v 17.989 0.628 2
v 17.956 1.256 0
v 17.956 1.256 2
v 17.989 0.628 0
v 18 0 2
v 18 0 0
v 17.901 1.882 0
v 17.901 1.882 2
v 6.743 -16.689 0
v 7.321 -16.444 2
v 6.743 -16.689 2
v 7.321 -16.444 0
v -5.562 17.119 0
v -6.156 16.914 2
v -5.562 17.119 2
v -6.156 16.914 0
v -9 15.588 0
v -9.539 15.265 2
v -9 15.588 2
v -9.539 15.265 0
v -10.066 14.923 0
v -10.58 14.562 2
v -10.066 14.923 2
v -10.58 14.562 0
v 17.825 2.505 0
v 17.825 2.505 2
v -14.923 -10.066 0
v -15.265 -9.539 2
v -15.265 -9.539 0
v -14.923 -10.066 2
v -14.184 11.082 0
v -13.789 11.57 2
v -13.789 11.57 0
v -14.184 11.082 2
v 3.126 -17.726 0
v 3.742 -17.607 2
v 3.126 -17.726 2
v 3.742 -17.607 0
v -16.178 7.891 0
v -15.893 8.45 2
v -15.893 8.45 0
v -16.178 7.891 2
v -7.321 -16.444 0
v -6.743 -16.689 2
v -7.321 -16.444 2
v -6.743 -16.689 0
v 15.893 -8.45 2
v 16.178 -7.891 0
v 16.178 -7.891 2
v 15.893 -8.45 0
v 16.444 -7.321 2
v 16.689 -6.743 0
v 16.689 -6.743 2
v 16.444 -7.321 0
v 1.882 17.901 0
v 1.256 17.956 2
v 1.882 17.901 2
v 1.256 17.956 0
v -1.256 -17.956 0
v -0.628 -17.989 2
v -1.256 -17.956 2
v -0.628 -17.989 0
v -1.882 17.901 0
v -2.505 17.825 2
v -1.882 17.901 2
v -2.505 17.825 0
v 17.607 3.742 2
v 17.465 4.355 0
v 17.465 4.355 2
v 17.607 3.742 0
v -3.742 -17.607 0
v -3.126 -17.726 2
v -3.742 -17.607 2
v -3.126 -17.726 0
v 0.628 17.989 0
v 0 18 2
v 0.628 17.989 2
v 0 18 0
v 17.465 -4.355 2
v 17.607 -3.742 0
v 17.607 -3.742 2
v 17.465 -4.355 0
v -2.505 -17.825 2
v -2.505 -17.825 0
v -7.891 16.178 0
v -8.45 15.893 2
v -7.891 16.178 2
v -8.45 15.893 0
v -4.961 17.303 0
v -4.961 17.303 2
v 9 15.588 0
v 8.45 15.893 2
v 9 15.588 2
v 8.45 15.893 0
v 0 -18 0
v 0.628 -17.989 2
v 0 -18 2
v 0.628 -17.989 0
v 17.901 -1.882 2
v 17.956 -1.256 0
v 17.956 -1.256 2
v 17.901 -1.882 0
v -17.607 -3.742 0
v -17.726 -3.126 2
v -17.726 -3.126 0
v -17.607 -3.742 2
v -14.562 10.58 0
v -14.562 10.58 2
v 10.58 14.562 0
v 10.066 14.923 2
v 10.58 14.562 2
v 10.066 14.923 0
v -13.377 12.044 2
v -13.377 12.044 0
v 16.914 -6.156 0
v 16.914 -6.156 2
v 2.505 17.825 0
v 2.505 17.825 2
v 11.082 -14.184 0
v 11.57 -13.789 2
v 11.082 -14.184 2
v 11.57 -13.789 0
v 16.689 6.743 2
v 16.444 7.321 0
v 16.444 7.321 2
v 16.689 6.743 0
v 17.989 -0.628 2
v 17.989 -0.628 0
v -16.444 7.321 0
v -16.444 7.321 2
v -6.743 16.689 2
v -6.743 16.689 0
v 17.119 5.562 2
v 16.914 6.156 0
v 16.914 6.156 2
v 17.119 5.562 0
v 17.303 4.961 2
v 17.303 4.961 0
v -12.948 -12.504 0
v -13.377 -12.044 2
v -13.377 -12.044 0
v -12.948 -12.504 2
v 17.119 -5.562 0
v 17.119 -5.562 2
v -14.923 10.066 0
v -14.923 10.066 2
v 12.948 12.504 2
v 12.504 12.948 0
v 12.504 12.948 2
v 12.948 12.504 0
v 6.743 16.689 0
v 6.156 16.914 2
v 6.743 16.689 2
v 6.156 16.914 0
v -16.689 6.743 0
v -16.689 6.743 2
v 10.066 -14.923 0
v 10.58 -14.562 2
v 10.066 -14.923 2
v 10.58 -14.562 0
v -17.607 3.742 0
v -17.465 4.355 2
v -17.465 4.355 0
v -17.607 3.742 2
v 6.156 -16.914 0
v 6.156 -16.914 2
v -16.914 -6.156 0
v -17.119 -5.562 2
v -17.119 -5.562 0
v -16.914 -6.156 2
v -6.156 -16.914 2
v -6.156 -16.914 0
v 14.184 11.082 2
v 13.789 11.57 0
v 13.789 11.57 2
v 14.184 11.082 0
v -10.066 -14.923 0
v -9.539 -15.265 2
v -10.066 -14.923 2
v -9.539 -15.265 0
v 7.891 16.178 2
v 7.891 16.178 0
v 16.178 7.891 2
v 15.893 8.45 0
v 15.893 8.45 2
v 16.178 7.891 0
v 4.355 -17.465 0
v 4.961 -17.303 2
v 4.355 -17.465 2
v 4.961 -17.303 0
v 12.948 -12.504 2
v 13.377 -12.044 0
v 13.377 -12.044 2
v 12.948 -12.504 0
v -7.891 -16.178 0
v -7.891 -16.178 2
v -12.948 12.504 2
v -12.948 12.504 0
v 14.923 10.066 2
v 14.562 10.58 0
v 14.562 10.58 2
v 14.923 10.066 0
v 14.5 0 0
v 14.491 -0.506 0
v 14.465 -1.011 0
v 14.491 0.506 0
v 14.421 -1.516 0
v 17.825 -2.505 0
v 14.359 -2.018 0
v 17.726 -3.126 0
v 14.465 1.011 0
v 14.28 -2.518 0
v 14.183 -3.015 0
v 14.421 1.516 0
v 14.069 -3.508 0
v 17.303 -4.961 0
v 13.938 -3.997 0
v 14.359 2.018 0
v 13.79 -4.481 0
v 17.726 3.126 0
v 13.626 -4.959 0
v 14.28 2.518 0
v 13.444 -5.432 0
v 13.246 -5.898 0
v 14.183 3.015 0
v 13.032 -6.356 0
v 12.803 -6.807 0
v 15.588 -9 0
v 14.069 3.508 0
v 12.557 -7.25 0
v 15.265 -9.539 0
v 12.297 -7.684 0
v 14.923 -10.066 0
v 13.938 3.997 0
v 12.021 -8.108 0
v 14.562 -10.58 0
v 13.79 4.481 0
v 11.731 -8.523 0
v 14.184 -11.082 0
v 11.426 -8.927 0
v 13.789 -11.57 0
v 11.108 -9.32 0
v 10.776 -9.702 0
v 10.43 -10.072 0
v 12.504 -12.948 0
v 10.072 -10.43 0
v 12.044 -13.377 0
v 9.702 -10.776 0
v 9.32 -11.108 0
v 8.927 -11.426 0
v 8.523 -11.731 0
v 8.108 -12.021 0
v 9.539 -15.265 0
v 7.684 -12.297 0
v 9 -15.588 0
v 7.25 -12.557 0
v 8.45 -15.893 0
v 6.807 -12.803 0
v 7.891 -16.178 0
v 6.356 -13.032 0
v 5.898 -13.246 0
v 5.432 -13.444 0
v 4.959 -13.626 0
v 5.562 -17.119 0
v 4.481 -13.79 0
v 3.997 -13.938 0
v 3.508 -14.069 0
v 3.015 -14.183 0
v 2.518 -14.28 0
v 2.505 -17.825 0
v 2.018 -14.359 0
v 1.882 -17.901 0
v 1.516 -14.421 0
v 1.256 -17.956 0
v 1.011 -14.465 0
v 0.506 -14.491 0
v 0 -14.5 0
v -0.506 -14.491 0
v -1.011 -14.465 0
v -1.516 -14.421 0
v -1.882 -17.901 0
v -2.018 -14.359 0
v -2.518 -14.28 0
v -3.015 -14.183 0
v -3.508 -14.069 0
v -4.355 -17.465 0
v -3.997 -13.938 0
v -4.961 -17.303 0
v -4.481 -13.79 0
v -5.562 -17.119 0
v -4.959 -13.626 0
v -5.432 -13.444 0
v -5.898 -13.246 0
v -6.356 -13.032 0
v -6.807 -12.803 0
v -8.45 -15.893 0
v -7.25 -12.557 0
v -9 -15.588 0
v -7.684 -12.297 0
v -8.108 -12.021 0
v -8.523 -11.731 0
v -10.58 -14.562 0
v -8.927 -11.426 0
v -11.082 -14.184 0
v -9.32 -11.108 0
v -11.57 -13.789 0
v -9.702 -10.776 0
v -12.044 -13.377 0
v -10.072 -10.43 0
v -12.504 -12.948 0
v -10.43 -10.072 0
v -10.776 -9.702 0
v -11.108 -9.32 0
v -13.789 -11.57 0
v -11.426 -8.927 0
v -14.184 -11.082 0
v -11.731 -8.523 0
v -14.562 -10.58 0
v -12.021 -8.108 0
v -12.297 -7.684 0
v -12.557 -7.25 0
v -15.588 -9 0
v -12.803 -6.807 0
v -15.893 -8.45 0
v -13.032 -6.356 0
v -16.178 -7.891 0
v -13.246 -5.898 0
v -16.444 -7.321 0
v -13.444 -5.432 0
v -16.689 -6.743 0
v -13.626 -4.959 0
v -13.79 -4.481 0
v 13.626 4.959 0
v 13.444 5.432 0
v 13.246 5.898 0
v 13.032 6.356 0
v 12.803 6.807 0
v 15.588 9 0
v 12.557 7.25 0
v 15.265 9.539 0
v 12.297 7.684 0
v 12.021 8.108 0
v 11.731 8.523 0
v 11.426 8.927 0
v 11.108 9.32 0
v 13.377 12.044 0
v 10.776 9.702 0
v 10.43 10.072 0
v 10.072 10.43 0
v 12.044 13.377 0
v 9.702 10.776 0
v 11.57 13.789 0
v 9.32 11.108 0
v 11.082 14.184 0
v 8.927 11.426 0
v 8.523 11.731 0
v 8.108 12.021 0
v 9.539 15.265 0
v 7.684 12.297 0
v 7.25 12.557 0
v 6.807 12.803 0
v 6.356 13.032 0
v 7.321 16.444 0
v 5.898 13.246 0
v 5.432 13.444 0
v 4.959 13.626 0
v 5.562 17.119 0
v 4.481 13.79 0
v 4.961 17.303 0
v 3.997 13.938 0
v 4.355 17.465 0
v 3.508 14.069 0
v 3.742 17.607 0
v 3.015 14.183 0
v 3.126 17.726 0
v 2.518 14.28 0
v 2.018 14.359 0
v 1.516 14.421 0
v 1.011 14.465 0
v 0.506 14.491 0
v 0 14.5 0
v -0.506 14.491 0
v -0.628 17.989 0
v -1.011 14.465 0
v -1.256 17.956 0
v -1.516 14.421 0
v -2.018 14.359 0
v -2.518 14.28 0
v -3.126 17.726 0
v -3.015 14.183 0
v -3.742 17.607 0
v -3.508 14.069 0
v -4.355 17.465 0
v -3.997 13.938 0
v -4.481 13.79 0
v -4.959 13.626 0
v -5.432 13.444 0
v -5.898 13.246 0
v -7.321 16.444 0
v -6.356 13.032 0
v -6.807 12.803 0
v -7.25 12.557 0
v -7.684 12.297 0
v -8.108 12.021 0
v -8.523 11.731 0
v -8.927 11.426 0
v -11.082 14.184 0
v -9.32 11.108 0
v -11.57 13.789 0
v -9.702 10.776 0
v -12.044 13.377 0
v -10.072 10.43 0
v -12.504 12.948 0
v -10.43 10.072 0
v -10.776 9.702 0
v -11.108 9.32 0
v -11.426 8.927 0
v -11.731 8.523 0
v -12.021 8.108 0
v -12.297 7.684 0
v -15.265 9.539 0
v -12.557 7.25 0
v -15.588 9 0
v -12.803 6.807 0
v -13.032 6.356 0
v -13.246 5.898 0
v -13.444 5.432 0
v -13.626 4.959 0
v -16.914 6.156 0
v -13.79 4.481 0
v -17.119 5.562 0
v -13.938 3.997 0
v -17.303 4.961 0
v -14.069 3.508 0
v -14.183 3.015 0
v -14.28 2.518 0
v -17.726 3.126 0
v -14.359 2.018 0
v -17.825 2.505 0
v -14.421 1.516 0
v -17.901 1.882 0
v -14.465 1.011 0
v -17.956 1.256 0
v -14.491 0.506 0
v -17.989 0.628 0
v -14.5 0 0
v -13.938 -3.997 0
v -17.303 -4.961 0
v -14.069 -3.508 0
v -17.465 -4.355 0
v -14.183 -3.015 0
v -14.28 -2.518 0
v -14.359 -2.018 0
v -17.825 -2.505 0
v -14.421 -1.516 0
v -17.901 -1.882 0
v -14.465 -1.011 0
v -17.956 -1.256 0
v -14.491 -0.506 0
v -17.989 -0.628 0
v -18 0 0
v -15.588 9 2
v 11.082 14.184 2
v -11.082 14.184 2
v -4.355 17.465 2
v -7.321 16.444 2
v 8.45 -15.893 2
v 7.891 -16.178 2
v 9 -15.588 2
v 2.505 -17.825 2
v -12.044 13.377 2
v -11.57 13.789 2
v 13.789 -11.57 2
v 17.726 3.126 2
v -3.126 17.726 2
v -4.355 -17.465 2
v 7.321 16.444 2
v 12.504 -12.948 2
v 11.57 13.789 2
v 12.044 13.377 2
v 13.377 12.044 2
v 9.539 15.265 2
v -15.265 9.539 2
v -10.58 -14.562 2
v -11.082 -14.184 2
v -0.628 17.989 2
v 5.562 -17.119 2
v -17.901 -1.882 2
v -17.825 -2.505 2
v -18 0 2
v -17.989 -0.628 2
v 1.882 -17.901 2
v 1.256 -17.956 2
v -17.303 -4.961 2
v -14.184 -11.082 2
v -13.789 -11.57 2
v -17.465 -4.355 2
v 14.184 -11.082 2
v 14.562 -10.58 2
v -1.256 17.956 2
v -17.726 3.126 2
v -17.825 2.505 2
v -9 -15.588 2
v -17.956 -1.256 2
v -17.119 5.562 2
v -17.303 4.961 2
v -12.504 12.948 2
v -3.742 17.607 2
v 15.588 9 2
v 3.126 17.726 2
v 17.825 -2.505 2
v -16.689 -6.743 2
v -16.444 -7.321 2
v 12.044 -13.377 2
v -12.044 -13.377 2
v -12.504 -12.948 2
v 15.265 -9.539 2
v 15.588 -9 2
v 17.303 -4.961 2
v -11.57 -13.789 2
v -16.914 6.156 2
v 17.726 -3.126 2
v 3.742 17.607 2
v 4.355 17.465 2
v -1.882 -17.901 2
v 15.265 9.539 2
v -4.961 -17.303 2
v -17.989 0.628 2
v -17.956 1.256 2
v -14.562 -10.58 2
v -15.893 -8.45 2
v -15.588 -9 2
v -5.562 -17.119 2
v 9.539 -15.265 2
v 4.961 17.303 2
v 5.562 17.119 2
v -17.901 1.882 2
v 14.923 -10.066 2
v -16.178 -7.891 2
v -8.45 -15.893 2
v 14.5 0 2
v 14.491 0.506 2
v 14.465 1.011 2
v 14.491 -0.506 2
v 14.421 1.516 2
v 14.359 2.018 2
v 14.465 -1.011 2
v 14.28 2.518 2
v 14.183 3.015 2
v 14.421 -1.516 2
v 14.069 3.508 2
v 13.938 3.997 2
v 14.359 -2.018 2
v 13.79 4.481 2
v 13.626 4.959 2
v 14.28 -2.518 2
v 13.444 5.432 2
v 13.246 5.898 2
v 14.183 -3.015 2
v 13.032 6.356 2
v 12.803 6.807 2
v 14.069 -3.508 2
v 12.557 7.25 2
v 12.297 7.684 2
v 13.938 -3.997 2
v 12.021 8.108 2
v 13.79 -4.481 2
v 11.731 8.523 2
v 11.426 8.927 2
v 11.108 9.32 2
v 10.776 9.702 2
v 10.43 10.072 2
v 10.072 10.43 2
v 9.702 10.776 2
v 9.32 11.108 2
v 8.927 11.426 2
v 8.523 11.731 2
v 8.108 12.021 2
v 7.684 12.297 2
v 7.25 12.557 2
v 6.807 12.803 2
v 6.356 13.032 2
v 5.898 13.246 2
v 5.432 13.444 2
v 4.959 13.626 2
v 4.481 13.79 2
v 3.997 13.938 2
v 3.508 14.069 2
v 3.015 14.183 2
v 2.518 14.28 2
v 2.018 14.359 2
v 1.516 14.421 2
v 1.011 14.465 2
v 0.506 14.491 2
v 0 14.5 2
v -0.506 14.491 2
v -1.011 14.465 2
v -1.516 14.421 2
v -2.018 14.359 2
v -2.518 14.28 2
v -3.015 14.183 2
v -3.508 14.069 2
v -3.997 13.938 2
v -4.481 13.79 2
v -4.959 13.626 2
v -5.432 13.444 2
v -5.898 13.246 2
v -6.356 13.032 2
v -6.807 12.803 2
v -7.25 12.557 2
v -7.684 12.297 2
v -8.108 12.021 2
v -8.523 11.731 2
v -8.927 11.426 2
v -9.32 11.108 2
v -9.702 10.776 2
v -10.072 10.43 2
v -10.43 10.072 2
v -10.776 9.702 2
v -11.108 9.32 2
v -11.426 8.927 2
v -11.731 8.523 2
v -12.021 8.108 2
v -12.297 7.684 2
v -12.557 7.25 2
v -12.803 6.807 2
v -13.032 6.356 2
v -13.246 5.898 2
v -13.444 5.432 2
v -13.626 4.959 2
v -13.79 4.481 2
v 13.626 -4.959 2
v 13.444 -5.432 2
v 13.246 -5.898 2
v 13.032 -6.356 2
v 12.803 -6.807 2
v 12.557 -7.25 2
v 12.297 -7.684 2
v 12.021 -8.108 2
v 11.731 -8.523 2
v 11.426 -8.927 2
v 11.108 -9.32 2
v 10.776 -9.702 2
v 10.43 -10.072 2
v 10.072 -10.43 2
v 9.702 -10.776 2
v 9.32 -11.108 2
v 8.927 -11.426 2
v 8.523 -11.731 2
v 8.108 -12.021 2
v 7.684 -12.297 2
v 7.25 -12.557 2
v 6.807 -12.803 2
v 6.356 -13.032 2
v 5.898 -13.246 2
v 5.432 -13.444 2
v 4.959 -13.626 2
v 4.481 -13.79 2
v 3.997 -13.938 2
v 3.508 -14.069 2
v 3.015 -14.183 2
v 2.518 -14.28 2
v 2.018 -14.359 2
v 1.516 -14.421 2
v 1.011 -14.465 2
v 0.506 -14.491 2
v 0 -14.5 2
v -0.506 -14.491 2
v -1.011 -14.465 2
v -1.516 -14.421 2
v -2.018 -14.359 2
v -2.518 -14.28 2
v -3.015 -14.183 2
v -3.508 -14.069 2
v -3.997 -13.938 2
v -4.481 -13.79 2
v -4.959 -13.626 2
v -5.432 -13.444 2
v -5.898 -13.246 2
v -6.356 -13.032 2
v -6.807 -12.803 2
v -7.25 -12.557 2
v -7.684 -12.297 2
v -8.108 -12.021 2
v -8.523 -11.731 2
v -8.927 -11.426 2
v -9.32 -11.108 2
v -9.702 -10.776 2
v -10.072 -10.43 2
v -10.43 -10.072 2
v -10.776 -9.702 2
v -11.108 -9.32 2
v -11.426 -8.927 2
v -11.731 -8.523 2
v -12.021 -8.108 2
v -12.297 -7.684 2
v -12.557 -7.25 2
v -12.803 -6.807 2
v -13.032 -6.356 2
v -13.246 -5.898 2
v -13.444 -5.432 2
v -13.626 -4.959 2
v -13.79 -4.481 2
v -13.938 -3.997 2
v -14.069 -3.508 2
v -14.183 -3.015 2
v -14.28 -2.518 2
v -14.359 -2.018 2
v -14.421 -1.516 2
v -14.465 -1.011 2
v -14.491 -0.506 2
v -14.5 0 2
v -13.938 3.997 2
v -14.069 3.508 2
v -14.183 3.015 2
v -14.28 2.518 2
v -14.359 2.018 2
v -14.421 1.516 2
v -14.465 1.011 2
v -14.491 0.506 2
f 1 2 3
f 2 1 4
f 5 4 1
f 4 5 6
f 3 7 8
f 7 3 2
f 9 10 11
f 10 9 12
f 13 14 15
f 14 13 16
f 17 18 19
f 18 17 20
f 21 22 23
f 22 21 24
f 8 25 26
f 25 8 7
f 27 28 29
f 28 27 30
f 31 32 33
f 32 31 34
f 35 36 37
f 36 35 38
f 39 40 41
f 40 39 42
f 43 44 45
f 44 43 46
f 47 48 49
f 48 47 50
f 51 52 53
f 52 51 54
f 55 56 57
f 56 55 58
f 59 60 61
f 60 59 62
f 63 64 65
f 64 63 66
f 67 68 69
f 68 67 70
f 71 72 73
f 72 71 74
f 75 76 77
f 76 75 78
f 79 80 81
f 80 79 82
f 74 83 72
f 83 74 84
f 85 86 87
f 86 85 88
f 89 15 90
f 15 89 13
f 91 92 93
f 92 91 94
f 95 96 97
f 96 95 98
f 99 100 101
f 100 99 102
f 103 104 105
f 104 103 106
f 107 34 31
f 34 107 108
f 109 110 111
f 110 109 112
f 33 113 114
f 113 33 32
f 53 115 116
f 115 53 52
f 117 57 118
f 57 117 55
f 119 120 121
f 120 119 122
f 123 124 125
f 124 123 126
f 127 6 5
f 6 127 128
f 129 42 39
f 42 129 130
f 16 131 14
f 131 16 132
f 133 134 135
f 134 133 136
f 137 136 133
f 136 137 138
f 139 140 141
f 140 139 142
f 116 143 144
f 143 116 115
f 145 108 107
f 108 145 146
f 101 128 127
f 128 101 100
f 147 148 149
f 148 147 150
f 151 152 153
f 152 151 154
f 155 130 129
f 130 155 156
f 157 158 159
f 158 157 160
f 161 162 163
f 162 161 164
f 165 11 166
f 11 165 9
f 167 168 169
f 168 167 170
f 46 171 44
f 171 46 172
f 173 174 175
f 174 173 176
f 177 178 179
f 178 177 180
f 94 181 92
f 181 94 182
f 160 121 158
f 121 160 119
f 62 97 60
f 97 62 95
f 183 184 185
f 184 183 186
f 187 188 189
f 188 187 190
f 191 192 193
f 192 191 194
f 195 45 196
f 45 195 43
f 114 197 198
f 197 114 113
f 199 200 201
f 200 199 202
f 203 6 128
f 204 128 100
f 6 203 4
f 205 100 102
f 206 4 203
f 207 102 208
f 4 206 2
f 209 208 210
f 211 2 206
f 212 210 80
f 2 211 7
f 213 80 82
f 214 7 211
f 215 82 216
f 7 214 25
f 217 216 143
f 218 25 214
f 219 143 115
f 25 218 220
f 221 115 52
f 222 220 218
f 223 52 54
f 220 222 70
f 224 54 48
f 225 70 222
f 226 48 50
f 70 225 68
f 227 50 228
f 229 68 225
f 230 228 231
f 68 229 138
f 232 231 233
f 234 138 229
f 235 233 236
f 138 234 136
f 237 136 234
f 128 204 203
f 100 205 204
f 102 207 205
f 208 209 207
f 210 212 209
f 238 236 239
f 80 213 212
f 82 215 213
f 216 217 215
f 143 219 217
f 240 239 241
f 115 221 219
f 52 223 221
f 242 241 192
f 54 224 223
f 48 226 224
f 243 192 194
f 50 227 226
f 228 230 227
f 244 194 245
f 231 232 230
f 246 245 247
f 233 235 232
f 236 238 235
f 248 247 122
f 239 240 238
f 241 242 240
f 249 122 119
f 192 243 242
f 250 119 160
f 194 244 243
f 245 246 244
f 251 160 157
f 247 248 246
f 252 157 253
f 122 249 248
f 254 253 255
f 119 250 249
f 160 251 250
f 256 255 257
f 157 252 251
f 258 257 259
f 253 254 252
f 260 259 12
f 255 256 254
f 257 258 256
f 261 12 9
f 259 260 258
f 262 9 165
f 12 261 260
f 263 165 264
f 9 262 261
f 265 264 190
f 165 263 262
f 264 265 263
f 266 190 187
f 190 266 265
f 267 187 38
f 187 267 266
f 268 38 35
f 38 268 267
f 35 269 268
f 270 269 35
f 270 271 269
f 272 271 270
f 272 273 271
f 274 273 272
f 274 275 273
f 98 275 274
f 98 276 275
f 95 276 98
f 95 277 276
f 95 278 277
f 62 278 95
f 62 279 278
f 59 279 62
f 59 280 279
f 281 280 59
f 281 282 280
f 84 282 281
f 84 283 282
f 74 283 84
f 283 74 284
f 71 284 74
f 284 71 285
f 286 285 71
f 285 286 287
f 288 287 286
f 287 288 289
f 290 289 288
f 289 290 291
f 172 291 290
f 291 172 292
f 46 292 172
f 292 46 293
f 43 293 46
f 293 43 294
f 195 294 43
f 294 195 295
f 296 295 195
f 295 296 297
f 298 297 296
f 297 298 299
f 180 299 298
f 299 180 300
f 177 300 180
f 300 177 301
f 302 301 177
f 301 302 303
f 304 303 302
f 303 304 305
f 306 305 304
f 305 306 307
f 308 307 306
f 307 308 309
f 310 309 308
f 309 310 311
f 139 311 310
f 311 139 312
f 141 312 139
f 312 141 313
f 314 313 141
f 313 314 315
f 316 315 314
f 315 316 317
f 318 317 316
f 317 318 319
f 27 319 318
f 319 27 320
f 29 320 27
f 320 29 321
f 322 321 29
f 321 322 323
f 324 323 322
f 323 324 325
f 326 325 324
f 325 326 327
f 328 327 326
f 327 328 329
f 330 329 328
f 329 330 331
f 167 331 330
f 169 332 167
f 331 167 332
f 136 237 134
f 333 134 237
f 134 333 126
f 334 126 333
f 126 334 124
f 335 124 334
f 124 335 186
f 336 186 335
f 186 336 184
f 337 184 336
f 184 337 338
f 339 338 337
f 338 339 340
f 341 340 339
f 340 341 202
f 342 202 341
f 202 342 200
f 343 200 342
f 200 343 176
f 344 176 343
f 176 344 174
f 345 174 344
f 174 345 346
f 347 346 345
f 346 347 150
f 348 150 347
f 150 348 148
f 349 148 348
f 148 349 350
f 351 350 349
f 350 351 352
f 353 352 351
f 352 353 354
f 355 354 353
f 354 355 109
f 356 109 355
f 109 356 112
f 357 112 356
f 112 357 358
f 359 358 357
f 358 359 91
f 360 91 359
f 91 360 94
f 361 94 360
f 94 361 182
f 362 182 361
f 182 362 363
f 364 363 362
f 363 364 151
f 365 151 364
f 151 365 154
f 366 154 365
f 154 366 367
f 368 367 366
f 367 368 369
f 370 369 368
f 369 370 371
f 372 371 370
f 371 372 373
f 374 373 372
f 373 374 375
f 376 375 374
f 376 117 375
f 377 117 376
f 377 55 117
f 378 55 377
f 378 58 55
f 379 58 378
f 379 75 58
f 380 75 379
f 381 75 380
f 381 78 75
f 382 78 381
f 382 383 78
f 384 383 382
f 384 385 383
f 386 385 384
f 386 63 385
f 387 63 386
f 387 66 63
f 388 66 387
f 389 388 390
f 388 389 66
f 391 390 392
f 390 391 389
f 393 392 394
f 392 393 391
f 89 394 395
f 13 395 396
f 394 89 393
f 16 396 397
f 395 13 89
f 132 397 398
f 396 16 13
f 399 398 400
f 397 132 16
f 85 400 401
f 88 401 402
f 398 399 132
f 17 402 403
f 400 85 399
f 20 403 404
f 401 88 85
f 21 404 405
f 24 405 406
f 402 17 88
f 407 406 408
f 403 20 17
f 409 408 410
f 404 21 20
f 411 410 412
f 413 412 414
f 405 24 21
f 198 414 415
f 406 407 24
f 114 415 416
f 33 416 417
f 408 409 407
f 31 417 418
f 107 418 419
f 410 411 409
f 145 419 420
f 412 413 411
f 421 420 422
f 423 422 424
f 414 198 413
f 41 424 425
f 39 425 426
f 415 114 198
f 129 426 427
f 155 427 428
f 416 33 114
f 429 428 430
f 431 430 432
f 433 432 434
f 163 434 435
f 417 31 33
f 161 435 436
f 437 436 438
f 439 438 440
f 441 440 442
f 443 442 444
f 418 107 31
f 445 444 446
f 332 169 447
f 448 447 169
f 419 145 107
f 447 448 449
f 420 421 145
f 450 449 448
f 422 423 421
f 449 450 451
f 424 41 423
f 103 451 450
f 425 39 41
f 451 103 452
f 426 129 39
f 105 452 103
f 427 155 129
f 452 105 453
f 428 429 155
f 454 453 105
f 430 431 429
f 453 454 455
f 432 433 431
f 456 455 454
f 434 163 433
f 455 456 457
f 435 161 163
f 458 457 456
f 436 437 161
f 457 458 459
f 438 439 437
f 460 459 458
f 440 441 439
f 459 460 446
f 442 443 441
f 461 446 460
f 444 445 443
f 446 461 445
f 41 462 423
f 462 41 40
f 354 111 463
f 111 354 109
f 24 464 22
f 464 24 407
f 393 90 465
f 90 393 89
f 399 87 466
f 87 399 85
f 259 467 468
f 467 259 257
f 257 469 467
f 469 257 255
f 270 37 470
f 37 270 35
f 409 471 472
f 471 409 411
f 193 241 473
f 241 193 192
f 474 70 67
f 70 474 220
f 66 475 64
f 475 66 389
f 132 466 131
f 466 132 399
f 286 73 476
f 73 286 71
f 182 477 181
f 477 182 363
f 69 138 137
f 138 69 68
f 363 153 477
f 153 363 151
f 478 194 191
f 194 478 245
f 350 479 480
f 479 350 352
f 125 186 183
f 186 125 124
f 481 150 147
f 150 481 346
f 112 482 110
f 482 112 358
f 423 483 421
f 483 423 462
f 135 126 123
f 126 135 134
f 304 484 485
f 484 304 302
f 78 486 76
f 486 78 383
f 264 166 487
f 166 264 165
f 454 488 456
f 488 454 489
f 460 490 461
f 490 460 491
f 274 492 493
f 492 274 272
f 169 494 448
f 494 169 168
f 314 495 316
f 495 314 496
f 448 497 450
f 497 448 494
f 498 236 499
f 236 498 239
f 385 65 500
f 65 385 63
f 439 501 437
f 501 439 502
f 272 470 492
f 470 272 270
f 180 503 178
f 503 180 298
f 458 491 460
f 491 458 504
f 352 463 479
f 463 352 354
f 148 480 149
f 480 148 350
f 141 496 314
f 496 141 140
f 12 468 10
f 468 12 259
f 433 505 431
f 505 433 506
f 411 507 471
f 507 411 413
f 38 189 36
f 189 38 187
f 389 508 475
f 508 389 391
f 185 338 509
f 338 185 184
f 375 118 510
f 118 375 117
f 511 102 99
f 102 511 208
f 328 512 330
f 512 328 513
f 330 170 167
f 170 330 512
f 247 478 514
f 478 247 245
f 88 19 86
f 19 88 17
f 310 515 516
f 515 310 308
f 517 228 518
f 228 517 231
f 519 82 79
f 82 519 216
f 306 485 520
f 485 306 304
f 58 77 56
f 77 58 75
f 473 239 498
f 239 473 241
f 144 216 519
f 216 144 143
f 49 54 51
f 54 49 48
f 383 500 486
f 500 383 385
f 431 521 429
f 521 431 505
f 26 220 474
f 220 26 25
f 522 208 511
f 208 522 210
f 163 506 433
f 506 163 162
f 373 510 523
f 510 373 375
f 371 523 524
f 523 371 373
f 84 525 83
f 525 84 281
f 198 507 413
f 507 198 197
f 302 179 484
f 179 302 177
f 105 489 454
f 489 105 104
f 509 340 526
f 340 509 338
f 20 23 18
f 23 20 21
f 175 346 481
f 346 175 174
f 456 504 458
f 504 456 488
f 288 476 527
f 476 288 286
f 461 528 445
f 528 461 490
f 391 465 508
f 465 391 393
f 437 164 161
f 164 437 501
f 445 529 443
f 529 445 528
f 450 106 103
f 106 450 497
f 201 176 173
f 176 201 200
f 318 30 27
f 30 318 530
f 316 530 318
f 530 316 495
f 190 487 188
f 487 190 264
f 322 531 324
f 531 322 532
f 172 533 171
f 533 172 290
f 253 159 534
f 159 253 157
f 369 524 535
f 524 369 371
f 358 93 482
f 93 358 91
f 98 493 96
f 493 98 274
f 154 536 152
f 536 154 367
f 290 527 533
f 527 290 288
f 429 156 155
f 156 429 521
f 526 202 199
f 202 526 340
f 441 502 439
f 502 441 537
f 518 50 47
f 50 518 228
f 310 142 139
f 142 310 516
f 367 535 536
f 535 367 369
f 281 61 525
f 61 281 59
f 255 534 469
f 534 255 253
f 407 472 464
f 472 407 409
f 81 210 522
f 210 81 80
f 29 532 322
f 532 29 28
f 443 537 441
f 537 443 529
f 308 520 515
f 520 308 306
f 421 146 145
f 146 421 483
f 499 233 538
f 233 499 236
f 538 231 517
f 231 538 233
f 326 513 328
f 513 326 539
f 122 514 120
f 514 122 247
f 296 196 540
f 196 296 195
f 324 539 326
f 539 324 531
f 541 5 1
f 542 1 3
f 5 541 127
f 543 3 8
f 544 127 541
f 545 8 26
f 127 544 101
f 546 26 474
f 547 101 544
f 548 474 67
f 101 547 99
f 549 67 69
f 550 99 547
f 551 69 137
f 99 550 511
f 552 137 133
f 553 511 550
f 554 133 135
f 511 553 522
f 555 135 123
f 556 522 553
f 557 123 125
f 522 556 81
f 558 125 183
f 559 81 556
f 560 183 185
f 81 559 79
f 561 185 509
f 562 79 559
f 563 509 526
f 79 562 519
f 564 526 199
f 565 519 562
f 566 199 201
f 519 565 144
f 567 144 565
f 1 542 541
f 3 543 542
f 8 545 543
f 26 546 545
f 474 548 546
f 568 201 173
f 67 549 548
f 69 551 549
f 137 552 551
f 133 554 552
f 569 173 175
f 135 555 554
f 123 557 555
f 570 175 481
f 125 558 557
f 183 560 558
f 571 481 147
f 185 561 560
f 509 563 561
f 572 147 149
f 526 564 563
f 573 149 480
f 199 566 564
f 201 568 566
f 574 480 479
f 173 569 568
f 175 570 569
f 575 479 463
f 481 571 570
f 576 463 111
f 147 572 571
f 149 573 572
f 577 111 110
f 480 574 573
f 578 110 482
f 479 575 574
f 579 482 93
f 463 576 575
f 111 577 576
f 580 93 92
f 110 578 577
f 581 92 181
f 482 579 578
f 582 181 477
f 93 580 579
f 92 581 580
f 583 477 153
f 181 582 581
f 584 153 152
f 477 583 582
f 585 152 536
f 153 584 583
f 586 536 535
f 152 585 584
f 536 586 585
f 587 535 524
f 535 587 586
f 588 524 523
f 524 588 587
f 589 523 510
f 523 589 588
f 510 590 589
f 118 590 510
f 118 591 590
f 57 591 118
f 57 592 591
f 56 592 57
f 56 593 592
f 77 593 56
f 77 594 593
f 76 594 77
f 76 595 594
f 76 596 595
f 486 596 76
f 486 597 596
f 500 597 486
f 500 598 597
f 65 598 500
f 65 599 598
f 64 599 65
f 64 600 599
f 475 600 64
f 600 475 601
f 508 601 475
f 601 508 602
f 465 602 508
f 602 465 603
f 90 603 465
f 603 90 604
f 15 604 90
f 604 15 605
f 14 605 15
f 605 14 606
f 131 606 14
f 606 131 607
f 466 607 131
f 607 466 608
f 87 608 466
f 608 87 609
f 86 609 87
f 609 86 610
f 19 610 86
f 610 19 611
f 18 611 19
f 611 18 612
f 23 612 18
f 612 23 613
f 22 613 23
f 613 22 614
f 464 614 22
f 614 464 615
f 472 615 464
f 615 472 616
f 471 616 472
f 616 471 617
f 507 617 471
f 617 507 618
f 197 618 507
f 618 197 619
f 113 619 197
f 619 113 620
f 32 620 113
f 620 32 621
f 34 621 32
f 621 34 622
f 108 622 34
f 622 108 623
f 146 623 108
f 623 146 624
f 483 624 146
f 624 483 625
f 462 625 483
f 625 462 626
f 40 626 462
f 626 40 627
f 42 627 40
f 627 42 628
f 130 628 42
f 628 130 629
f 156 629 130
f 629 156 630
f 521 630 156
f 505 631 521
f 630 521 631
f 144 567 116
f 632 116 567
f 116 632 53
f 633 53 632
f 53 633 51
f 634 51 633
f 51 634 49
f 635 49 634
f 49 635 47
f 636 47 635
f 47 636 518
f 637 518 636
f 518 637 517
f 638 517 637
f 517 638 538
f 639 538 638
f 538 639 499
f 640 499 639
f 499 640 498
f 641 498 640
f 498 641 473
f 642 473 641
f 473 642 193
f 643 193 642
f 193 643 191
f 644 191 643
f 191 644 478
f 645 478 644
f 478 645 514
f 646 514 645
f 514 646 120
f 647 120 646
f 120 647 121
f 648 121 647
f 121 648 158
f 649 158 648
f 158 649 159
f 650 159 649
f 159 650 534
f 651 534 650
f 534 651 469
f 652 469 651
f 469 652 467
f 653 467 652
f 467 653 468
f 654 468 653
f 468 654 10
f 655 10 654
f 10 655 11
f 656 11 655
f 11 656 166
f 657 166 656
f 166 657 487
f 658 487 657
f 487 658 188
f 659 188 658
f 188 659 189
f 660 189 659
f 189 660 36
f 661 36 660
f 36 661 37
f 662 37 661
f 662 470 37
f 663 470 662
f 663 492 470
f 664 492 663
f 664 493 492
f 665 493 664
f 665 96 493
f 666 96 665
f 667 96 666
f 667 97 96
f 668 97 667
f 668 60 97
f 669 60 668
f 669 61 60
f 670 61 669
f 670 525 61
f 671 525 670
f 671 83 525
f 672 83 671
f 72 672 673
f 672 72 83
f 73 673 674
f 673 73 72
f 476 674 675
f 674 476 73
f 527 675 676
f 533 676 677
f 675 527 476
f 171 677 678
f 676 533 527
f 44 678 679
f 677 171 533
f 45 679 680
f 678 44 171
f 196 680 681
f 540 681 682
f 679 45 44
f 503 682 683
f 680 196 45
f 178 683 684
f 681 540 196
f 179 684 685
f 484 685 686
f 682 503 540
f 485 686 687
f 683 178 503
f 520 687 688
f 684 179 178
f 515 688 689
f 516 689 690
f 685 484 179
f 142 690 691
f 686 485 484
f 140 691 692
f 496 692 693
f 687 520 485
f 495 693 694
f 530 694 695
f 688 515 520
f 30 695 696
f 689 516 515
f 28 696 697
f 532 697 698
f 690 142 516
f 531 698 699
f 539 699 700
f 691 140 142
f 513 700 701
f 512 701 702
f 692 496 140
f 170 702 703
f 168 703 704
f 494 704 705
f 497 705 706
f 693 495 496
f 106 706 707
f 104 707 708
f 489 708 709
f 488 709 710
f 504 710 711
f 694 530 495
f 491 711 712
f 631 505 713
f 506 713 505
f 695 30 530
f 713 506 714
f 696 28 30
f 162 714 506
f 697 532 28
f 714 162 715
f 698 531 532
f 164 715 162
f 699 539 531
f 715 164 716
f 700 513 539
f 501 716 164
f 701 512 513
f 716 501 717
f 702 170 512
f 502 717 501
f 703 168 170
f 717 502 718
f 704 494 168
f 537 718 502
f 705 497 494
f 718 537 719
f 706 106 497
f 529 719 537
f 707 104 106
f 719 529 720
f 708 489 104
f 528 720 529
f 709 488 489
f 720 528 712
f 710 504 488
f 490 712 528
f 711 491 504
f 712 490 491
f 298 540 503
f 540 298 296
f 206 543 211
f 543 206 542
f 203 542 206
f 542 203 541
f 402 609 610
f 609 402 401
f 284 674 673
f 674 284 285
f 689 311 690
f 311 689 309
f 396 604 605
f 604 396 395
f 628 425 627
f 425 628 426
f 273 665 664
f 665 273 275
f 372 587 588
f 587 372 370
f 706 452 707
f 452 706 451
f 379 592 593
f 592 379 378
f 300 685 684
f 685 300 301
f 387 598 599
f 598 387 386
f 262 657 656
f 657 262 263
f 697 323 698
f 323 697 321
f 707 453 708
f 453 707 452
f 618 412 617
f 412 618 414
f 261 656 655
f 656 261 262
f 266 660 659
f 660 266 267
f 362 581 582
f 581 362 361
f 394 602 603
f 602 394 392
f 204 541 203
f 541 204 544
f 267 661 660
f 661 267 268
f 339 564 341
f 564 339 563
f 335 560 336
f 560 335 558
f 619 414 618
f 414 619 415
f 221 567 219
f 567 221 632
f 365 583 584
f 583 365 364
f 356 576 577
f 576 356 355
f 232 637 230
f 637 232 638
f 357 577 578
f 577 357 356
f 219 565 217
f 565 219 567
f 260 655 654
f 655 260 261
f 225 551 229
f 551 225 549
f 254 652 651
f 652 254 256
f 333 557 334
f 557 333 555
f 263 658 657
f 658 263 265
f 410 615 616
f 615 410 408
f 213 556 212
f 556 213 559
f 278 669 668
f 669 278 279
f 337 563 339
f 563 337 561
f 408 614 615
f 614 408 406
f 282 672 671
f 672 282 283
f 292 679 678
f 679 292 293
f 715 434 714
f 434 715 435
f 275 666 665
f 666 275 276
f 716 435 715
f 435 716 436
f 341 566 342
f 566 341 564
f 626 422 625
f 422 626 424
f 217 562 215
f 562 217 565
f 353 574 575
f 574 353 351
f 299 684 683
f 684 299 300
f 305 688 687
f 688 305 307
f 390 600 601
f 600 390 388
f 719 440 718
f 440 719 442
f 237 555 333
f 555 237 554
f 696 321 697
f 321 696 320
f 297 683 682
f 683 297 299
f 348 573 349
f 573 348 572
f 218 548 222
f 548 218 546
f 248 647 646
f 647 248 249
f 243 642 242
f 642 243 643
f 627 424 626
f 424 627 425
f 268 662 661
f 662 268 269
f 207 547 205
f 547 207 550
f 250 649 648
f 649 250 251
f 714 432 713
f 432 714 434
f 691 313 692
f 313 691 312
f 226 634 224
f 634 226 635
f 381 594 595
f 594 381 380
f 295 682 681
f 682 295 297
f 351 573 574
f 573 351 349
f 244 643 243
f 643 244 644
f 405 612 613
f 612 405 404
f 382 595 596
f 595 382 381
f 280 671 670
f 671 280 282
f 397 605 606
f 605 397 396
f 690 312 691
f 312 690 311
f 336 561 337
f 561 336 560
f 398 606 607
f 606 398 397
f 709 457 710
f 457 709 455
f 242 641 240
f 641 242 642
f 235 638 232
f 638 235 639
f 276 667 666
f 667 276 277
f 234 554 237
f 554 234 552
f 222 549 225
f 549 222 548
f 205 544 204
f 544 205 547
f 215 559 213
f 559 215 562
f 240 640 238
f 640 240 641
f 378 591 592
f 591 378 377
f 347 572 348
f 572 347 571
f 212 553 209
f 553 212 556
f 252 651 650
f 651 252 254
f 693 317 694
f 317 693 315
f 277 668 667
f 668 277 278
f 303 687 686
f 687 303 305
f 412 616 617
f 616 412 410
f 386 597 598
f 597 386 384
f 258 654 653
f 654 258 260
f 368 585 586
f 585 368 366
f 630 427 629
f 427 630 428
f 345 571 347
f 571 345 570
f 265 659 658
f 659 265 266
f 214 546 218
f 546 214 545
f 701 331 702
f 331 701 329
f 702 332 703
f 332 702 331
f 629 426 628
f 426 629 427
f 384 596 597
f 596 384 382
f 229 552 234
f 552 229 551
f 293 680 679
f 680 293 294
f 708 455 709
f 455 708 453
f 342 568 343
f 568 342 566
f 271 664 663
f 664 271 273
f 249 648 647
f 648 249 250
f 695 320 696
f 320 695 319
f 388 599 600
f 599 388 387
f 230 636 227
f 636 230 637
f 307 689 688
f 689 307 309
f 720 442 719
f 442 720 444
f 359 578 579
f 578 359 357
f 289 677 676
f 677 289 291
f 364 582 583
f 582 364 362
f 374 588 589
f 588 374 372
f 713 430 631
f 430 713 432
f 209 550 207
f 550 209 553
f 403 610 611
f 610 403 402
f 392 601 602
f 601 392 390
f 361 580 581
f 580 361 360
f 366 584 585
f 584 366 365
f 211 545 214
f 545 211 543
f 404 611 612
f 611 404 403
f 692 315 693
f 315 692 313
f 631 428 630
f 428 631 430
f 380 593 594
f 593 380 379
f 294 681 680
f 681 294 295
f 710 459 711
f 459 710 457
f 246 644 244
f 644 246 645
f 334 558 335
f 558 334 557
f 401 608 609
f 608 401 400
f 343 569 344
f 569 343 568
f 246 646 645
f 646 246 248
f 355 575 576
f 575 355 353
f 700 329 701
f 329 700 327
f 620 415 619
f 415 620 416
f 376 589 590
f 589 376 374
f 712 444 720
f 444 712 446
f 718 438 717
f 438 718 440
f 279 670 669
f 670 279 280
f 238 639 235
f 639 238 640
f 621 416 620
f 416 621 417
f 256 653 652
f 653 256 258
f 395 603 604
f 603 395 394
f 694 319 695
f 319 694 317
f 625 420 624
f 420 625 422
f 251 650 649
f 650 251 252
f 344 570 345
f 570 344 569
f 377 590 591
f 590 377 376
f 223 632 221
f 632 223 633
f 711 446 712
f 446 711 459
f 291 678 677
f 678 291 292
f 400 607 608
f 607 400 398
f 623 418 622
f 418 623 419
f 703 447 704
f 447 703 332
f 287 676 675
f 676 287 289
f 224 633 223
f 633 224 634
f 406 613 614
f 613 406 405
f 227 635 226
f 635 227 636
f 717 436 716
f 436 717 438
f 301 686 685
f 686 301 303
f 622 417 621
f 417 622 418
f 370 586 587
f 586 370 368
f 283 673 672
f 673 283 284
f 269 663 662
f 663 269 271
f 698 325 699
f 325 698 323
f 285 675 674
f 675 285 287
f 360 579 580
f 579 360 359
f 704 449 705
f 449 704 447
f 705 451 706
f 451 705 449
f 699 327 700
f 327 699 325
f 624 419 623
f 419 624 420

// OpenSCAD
// file: params.scad
// ─────────────────────────────────────────────────────────────
//  Automated Snail Terrarium — shared parameters
//  Change a number, run ../.venv/bin/python verify.py, get STLs.
//
//  CONFIRMED = from a datasheet / vendor spec
//  ASSUMED   = safe default, verify before ordering prints
//  MEASURE   = must be measured first
// ─────────────────────────────────────────────────────────────

// ── Mist maker module ────────────────────────────────────────
// CONFIRMED (eshop.eca.ir, 550 ml/h unit):
//   24 V DC · >=550 ml/h · effective water level 20-75 mm
//   head dia 45 mm · module height 45 mm · 5-45 C
//   cable 1400 +/-20 mm, 3.8 mm OD · DC female 5.5 x 2.1 mm
mm_module_od      = 45;
mm_module_h       = 45;
mm_cable_od       = 3.8;
water_min         = 20;
water_max         = 75;

// ── Water column ─────────────────────────────────────────────
// A Mariotte (inverted-bottle) reservoir holds the level CONSTANT,
// so it is parked near the BOTTOM of the band rather than filled to
// the top. That is what makes this build cheap: the water column
// drops from 118 mm to 68.5 mm, and the chamber shrinks with it.
mm_recess_d       = 1.5;
module_top        = mm_module_h - mm_recess_d;
water_hold        = 25;    // held this far above the module top
water_level       = module_top + water_hold;
fog_headspace     = 55;

// ── Chamber (cylindrical: least wall for a given volume) ──────
ch_id             = 74;    // must clear the 45 mm module + fog path
ch_wall           = 2.5;
ch_floor          = 3.0;
ch_od             = ch_id + 2*ch_wall;
ch_inner_h        = water_level + fog_headspace;

// ── Fog outlet ───────────────────────────────────────────────
fog_port_d        = 28;
fog_port_z        = water_level + 26;
fog_boss_len      = 10;
fog_boss_wall     = 2.5;

// ── Mariotte standpipe ───────────────────────────────────────
// Its BOTTOM OPENING sets the water level. Water leaves the bottle
// until it seals this opening; air can then no longer enter, so
// flow stops. The level is independent of how full the bottle is.
// The bore is uniform so the lid prints without a single overhang.
sp_bore           = 28.6;  // PCO-1881 neck (27.4 mm) + clearance
sp_wall           = 2.5;
sp_od             = sp_bore + 2*sp_wall;
sp_offset         = 16;    // off-centre, clear of the disc's plume
sp_socket_depth   = 18;    // how far the bottle neck inserts
gasket_od         = 36;    // TPU washer under the bottle's support ring
gasket_id         = 29;
gasket_t          = 2.0;

// ── Lid ──────────────────────────────────────────────────────
// Seats on the chamber rim; a spigot locates it in the bore.
// PRINT PLATE-TOP-DOWN: spigot and standpipe both rise from the
// bed, so there are no overhangs and the seat is a bed-flat face.
// No fill port: you refill by lifting out the bottle.
lid_t             = 4.0;
lid_spigot_h      = 5.0;
lid_fit           = 0.30;
lid_finger_d      = 20;
lid_rim_seat      = (ch_od - ch_id)/2;
vent_d            = 5;
vent_n            = 5;
cable_notch_w     = mm_cable_od + 3;
cable_notch_h     = 6;
lid_pos_z         = ch_floor + ch_inner_h;

// ── Reservoir bottle ─────────────────────────────────────────
bottle_ml         = 500;   // ~25 days at 20 ml/day
bottle_body_d     = 66;    // ASSUMED 0.5 L PET body diameter - MEASURE

// ── Terrarium ────────────────────────────────────────────────
tank_w = 460; tank_d = 280; tank_h = 370;
glass_t = 5.0;             // MEASURE - only needed for the bracket

// ── Rendering ────────────────────────────────────────────────
$fa = 2; $fs = 0.4;
eps = 0.01;

module teardrop(d, len) {          // support-free horizontal hole, tip UP
    r = d/2;
    rotate([-90, 0, 0]) linear_extrude(len) union() {
        circle(r = r);
        polygon([[-r*0.707, -r*0.707], [r*0.707, -r*0.707], [0, -r*1.42]]);
    }
}

// ── Capacity report ──────────────────────────────────────────
echo(str("chamber OD ", ch_od, " x ", ch_floor+ch_inner_h, " mm tall"));
echo(str("water held at ", water_level, " mm = ", water_hold,
         " mm above the module top (band ", water_min, "-", water_max, ")"));
echo(str("bottle ", bottle_ml, " ml -> ", bottle_ml/20, " days at 20 ml/day"));
// main file
// TPU (XFlex) washer. The bottle's support ring presses onto this,
// sealing the neck so air can only enter via the standpipe bore.
include <params.scad>
difference() {
    cylinder(d = gasket_od, h = gasket_t);
    translate([0,0,-eps]) cylinder(d = gasket_id, h = gasket_t + 2*eps);
}
